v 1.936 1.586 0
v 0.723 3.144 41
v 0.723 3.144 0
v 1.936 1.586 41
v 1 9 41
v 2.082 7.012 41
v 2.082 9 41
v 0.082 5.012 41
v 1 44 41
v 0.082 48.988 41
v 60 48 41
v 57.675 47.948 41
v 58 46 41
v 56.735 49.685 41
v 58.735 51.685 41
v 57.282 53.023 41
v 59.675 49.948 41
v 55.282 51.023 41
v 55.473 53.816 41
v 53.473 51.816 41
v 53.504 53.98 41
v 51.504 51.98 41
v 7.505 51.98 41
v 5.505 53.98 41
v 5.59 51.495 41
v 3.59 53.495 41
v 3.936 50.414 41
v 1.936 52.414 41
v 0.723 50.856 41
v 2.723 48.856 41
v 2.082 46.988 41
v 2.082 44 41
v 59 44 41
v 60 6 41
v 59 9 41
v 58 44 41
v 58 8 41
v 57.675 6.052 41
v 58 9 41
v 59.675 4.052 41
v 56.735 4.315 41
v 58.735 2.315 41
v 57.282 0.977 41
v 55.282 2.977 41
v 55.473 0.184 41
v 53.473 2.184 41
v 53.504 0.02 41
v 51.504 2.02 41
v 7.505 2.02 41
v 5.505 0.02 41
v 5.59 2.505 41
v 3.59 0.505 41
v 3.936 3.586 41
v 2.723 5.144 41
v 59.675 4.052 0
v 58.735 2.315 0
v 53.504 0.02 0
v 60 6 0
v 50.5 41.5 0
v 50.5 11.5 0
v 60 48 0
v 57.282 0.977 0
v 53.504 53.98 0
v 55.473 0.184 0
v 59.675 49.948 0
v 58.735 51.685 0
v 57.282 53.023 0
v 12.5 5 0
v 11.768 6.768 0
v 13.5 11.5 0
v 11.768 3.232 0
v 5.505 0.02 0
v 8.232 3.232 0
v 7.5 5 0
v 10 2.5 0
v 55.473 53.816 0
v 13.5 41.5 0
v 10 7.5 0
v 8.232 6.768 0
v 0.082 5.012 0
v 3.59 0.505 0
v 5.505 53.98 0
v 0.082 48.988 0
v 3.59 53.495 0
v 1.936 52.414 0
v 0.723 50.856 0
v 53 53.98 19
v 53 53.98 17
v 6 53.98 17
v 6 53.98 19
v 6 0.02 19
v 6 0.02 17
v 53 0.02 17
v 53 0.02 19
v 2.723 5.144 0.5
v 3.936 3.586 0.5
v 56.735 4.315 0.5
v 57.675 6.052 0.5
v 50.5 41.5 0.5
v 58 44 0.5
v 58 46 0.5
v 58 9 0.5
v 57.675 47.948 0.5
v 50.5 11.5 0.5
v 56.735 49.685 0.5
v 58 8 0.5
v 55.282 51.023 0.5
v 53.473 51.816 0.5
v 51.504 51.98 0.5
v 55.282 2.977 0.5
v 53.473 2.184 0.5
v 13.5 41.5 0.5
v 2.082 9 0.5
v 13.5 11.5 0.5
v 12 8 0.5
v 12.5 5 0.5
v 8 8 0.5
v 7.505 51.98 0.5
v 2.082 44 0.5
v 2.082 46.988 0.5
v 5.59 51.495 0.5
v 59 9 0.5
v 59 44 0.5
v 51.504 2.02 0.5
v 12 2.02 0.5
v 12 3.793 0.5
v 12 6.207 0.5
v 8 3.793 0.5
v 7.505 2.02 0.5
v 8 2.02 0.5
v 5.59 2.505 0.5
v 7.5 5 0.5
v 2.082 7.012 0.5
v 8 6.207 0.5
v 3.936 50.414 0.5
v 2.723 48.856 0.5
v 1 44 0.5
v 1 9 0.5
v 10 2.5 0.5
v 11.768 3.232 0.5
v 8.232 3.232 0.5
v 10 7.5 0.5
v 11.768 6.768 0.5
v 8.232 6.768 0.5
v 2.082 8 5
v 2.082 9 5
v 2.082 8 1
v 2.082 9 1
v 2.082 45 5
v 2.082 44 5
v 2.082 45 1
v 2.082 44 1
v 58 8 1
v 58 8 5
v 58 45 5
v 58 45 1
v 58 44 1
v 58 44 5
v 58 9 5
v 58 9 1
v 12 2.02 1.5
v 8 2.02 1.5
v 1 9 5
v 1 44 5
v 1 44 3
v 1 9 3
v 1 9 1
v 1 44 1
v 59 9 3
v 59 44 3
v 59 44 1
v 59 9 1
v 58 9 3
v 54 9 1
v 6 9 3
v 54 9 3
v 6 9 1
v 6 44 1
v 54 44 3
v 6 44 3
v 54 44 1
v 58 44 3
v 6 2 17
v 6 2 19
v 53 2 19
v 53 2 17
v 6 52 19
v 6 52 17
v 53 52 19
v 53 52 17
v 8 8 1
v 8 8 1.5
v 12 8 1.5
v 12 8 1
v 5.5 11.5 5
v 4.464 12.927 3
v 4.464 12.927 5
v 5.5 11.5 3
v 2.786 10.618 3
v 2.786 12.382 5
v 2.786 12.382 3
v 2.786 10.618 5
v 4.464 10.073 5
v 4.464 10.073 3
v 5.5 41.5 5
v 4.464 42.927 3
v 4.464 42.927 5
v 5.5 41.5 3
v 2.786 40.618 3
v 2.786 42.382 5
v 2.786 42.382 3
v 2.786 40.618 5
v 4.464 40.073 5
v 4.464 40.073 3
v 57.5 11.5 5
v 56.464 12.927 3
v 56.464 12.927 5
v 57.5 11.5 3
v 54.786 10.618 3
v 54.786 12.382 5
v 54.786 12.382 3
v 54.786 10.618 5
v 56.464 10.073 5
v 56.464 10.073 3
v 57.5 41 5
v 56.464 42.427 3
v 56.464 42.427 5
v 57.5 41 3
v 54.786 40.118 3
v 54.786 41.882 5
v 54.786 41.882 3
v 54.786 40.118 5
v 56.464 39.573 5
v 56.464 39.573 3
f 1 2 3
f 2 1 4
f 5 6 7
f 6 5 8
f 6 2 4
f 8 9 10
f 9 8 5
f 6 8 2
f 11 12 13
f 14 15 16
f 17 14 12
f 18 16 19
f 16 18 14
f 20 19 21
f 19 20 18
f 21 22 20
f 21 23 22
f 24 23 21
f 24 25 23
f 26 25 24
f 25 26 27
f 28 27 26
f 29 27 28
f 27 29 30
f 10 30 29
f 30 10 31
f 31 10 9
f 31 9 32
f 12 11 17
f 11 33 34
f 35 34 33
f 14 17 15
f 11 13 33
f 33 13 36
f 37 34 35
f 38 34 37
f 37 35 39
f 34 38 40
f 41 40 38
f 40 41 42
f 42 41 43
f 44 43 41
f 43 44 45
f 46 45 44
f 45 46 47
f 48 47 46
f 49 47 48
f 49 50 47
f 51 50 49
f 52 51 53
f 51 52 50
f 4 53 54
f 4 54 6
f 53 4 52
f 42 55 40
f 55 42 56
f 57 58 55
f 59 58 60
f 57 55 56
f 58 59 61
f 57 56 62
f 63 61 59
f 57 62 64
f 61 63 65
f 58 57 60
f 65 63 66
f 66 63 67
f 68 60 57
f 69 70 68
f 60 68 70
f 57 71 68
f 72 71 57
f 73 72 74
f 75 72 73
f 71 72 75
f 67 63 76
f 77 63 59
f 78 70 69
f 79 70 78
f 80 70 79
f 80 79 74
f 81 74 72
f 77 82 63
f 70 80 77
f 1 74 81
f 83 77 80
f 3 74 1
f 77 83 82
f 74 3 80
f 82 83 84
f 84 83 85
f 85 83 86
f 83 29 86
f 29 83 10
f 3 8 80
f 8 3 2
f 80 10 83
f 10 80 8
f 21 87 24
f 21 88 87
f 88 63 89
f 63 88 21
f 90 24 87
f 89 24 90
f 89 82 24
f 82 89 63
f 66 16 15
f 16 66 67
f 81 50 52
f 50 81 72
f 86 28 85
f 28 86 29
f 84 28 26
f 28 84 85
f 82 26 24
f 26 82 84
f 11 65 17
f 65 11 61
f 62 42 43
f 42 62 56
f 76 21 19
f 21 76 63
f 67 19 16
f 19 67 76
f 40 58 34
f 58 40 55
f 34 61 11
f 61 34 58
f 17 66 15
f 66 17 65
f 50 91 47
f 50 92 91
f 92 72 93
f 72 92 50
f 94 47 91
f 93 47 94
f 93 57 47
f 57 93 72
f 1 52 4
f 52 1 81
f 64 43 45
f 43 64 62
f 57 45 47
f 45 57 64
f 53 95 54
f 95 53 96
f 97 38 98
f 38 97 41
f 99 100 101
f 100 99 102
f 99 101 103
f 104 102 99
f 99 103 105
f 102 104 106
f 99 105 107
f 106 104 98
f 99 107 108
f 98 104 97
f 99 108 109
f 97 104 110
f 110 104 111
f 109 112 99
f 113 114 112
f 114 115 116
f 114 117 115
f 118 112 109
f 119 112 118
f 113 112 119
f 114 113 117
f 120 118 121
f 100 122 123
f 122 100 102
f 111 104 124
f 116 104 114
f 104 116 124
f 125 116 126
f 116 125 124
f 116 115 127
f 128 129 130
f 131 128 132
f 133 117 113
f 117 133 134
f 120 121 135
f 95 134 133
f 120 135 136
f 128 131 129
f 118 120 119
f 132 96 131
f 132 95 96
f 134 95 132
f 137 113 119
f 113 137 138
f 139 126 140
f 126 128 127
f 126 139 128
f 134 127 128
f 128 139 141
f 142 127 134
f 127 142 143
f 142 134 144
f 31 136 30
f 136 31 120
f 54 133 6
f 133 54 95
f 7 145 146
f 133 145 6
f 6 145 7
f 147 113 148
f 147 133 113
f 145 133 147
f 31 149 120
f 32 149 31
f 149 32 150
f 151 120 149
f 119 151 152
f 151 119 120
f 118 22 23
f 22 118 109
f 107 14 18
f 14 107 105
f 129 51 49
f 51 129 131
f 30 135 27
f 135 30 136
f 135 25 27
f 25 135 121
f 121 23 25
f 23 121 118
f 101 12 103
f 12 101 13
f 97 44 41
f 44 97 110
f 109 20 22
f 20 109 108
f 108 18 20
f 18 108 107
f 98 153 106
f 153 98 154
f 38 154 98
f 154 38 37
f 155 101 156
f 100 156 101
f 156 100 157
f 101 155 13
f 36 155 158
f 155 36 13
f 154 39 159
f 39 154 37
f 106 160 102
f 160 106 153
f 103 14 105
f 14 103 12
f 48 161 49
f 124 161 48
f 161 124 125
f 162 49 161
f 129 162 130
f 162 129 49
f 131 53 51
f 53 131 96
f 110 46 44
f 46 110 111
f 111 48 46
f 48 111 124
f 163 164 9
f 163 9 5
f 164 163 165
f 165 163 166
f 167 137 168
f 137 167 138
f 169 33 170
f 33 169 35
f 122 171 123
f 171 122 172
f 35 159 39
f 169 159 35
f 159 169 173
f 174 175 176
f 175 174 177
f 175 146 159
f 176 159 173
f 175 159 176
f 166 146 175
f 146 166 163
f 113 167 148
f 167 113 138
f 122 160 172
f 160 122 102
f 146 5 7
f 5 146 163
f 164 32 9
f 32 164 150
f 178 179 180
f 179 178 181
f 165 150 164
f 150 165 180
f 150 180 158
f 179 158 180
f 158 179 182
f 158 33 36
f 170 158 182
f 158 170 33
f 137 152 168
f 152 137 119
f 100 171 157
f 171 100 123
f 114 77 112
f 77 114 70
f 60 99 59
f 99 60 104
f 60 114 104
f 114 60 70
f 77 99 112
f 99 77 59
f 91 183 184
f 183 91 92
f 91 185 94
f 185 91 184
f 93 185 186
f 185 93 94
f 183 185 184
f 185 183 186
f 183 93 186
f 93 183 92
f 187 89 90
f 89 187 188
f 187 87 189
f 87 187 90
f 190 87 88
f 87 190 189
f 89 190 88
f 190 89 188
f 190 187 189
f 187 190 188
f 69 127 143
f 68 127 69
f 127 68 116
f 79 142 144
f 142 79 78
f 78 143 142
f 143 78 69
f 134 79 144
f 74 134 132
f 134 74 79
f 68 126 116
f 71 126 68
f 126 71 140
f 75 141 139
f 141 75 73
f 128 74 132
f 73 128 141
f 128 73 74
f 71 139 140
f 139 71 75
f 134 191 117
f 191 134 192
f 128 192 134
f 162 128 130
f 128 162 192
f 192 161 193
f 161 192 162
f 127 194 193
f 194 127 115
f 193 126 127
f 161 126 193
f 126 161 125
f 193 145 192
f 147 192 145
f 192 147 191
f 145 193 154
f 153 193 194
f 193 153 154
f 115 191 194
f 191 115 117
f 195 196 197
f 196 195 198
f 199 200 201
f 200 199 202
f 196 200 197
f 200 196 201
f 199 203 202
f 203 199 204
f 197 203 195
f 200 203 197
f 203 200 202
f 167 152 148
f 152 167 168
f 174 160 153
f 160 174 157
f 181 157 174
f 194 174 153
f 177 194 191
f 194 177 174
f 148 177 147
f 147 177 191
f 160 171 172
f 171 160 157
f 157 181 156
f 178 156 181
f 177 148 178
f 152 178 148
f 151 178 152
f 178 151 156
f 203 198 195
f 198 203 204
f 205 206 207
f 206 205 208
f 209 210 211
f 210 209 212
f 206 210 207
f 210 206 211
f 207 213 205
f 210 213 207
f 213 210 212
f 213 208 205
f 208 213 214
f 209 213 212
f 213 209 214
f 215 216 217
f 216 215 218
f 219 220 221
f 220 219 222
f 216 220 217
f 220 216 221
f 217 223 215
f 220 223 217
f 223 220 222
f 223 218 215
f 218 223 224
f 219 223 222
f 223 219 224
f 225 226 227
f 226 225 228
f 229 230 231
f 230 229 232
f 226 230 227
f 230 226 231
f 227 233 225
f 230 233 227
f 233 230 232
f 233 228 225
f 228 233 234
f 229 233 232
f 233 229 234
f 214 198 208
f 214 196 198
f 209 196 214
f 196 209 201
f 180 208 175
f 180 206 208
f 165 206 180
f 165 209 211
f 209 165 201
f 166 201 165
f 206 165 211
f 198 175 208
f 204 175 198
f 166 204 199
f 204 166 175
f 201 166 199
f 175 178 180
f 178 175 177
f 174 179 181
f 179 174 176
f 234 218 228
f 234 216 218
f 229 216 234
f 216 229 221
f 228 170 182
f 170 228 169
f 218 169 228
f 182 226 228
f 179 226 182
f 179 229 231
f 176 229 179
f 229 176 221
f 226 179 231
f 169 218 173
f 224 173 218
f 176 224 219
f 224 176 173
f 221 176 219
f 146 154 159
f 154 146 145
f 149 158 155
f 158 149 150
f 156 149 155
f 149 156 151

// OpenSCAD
union(){
    difference(){
        //outside box
        translate([6,6,0]){
            minkowski(){
                cube([48,42,1]);
                cylinder(r=6,h=40);
            }
        }
         //hollow interior
        translate([8,8,0.5]){
            minkowski(){
                cube([44,38,2]);
                cylinder(r=6,h=40);
            }
        }
        //notch top and bottom
        translate([1,9,0.5]){
            cube([58,35,42]);
        }
        //display cutout
        translate([13.5,11.5,0]){
            cube([37,30,3]);
        } 
        //side notches for fitting
        translate([6,0,17]){
            cube([47,2,2]);
        }
        translate([6,52,17]){
            cube([47,2,2]);
        }
        //cutout for light sensor
        translate([10,5,0]){
            cylinder(r=2.5,h=0.5);
        }
    }
    translate([8,2,0.5]){
        cube([4,6,1]);
    }
    
    //mounting posts
    translate([4,11.5,1]){
        cylinder(r=1.5,h=4);
    }
       //bottom left
    translate([4,41.5,1]){
        cylinder(r=1.5,h=4);
    }
     //top right
    translate([56,11.5,1]){
        cylinder(r=1.5,h=4);
    }
    //top left
    translate([56,41,1]){
        cylinder(r=1.5,h=4);
    }
    //post reinforcement
    translate([1,9,1]){
        cube([5,35,2]);
    }
    
    translate([54,9,1]){
        cube([5,35,2]);
    }
    //side walls
    translate([1,8,1]){
        cube([57,1,4]);
    }
    translate([1,44,1]){
        cube([57,1,4]);
    }
}
       
